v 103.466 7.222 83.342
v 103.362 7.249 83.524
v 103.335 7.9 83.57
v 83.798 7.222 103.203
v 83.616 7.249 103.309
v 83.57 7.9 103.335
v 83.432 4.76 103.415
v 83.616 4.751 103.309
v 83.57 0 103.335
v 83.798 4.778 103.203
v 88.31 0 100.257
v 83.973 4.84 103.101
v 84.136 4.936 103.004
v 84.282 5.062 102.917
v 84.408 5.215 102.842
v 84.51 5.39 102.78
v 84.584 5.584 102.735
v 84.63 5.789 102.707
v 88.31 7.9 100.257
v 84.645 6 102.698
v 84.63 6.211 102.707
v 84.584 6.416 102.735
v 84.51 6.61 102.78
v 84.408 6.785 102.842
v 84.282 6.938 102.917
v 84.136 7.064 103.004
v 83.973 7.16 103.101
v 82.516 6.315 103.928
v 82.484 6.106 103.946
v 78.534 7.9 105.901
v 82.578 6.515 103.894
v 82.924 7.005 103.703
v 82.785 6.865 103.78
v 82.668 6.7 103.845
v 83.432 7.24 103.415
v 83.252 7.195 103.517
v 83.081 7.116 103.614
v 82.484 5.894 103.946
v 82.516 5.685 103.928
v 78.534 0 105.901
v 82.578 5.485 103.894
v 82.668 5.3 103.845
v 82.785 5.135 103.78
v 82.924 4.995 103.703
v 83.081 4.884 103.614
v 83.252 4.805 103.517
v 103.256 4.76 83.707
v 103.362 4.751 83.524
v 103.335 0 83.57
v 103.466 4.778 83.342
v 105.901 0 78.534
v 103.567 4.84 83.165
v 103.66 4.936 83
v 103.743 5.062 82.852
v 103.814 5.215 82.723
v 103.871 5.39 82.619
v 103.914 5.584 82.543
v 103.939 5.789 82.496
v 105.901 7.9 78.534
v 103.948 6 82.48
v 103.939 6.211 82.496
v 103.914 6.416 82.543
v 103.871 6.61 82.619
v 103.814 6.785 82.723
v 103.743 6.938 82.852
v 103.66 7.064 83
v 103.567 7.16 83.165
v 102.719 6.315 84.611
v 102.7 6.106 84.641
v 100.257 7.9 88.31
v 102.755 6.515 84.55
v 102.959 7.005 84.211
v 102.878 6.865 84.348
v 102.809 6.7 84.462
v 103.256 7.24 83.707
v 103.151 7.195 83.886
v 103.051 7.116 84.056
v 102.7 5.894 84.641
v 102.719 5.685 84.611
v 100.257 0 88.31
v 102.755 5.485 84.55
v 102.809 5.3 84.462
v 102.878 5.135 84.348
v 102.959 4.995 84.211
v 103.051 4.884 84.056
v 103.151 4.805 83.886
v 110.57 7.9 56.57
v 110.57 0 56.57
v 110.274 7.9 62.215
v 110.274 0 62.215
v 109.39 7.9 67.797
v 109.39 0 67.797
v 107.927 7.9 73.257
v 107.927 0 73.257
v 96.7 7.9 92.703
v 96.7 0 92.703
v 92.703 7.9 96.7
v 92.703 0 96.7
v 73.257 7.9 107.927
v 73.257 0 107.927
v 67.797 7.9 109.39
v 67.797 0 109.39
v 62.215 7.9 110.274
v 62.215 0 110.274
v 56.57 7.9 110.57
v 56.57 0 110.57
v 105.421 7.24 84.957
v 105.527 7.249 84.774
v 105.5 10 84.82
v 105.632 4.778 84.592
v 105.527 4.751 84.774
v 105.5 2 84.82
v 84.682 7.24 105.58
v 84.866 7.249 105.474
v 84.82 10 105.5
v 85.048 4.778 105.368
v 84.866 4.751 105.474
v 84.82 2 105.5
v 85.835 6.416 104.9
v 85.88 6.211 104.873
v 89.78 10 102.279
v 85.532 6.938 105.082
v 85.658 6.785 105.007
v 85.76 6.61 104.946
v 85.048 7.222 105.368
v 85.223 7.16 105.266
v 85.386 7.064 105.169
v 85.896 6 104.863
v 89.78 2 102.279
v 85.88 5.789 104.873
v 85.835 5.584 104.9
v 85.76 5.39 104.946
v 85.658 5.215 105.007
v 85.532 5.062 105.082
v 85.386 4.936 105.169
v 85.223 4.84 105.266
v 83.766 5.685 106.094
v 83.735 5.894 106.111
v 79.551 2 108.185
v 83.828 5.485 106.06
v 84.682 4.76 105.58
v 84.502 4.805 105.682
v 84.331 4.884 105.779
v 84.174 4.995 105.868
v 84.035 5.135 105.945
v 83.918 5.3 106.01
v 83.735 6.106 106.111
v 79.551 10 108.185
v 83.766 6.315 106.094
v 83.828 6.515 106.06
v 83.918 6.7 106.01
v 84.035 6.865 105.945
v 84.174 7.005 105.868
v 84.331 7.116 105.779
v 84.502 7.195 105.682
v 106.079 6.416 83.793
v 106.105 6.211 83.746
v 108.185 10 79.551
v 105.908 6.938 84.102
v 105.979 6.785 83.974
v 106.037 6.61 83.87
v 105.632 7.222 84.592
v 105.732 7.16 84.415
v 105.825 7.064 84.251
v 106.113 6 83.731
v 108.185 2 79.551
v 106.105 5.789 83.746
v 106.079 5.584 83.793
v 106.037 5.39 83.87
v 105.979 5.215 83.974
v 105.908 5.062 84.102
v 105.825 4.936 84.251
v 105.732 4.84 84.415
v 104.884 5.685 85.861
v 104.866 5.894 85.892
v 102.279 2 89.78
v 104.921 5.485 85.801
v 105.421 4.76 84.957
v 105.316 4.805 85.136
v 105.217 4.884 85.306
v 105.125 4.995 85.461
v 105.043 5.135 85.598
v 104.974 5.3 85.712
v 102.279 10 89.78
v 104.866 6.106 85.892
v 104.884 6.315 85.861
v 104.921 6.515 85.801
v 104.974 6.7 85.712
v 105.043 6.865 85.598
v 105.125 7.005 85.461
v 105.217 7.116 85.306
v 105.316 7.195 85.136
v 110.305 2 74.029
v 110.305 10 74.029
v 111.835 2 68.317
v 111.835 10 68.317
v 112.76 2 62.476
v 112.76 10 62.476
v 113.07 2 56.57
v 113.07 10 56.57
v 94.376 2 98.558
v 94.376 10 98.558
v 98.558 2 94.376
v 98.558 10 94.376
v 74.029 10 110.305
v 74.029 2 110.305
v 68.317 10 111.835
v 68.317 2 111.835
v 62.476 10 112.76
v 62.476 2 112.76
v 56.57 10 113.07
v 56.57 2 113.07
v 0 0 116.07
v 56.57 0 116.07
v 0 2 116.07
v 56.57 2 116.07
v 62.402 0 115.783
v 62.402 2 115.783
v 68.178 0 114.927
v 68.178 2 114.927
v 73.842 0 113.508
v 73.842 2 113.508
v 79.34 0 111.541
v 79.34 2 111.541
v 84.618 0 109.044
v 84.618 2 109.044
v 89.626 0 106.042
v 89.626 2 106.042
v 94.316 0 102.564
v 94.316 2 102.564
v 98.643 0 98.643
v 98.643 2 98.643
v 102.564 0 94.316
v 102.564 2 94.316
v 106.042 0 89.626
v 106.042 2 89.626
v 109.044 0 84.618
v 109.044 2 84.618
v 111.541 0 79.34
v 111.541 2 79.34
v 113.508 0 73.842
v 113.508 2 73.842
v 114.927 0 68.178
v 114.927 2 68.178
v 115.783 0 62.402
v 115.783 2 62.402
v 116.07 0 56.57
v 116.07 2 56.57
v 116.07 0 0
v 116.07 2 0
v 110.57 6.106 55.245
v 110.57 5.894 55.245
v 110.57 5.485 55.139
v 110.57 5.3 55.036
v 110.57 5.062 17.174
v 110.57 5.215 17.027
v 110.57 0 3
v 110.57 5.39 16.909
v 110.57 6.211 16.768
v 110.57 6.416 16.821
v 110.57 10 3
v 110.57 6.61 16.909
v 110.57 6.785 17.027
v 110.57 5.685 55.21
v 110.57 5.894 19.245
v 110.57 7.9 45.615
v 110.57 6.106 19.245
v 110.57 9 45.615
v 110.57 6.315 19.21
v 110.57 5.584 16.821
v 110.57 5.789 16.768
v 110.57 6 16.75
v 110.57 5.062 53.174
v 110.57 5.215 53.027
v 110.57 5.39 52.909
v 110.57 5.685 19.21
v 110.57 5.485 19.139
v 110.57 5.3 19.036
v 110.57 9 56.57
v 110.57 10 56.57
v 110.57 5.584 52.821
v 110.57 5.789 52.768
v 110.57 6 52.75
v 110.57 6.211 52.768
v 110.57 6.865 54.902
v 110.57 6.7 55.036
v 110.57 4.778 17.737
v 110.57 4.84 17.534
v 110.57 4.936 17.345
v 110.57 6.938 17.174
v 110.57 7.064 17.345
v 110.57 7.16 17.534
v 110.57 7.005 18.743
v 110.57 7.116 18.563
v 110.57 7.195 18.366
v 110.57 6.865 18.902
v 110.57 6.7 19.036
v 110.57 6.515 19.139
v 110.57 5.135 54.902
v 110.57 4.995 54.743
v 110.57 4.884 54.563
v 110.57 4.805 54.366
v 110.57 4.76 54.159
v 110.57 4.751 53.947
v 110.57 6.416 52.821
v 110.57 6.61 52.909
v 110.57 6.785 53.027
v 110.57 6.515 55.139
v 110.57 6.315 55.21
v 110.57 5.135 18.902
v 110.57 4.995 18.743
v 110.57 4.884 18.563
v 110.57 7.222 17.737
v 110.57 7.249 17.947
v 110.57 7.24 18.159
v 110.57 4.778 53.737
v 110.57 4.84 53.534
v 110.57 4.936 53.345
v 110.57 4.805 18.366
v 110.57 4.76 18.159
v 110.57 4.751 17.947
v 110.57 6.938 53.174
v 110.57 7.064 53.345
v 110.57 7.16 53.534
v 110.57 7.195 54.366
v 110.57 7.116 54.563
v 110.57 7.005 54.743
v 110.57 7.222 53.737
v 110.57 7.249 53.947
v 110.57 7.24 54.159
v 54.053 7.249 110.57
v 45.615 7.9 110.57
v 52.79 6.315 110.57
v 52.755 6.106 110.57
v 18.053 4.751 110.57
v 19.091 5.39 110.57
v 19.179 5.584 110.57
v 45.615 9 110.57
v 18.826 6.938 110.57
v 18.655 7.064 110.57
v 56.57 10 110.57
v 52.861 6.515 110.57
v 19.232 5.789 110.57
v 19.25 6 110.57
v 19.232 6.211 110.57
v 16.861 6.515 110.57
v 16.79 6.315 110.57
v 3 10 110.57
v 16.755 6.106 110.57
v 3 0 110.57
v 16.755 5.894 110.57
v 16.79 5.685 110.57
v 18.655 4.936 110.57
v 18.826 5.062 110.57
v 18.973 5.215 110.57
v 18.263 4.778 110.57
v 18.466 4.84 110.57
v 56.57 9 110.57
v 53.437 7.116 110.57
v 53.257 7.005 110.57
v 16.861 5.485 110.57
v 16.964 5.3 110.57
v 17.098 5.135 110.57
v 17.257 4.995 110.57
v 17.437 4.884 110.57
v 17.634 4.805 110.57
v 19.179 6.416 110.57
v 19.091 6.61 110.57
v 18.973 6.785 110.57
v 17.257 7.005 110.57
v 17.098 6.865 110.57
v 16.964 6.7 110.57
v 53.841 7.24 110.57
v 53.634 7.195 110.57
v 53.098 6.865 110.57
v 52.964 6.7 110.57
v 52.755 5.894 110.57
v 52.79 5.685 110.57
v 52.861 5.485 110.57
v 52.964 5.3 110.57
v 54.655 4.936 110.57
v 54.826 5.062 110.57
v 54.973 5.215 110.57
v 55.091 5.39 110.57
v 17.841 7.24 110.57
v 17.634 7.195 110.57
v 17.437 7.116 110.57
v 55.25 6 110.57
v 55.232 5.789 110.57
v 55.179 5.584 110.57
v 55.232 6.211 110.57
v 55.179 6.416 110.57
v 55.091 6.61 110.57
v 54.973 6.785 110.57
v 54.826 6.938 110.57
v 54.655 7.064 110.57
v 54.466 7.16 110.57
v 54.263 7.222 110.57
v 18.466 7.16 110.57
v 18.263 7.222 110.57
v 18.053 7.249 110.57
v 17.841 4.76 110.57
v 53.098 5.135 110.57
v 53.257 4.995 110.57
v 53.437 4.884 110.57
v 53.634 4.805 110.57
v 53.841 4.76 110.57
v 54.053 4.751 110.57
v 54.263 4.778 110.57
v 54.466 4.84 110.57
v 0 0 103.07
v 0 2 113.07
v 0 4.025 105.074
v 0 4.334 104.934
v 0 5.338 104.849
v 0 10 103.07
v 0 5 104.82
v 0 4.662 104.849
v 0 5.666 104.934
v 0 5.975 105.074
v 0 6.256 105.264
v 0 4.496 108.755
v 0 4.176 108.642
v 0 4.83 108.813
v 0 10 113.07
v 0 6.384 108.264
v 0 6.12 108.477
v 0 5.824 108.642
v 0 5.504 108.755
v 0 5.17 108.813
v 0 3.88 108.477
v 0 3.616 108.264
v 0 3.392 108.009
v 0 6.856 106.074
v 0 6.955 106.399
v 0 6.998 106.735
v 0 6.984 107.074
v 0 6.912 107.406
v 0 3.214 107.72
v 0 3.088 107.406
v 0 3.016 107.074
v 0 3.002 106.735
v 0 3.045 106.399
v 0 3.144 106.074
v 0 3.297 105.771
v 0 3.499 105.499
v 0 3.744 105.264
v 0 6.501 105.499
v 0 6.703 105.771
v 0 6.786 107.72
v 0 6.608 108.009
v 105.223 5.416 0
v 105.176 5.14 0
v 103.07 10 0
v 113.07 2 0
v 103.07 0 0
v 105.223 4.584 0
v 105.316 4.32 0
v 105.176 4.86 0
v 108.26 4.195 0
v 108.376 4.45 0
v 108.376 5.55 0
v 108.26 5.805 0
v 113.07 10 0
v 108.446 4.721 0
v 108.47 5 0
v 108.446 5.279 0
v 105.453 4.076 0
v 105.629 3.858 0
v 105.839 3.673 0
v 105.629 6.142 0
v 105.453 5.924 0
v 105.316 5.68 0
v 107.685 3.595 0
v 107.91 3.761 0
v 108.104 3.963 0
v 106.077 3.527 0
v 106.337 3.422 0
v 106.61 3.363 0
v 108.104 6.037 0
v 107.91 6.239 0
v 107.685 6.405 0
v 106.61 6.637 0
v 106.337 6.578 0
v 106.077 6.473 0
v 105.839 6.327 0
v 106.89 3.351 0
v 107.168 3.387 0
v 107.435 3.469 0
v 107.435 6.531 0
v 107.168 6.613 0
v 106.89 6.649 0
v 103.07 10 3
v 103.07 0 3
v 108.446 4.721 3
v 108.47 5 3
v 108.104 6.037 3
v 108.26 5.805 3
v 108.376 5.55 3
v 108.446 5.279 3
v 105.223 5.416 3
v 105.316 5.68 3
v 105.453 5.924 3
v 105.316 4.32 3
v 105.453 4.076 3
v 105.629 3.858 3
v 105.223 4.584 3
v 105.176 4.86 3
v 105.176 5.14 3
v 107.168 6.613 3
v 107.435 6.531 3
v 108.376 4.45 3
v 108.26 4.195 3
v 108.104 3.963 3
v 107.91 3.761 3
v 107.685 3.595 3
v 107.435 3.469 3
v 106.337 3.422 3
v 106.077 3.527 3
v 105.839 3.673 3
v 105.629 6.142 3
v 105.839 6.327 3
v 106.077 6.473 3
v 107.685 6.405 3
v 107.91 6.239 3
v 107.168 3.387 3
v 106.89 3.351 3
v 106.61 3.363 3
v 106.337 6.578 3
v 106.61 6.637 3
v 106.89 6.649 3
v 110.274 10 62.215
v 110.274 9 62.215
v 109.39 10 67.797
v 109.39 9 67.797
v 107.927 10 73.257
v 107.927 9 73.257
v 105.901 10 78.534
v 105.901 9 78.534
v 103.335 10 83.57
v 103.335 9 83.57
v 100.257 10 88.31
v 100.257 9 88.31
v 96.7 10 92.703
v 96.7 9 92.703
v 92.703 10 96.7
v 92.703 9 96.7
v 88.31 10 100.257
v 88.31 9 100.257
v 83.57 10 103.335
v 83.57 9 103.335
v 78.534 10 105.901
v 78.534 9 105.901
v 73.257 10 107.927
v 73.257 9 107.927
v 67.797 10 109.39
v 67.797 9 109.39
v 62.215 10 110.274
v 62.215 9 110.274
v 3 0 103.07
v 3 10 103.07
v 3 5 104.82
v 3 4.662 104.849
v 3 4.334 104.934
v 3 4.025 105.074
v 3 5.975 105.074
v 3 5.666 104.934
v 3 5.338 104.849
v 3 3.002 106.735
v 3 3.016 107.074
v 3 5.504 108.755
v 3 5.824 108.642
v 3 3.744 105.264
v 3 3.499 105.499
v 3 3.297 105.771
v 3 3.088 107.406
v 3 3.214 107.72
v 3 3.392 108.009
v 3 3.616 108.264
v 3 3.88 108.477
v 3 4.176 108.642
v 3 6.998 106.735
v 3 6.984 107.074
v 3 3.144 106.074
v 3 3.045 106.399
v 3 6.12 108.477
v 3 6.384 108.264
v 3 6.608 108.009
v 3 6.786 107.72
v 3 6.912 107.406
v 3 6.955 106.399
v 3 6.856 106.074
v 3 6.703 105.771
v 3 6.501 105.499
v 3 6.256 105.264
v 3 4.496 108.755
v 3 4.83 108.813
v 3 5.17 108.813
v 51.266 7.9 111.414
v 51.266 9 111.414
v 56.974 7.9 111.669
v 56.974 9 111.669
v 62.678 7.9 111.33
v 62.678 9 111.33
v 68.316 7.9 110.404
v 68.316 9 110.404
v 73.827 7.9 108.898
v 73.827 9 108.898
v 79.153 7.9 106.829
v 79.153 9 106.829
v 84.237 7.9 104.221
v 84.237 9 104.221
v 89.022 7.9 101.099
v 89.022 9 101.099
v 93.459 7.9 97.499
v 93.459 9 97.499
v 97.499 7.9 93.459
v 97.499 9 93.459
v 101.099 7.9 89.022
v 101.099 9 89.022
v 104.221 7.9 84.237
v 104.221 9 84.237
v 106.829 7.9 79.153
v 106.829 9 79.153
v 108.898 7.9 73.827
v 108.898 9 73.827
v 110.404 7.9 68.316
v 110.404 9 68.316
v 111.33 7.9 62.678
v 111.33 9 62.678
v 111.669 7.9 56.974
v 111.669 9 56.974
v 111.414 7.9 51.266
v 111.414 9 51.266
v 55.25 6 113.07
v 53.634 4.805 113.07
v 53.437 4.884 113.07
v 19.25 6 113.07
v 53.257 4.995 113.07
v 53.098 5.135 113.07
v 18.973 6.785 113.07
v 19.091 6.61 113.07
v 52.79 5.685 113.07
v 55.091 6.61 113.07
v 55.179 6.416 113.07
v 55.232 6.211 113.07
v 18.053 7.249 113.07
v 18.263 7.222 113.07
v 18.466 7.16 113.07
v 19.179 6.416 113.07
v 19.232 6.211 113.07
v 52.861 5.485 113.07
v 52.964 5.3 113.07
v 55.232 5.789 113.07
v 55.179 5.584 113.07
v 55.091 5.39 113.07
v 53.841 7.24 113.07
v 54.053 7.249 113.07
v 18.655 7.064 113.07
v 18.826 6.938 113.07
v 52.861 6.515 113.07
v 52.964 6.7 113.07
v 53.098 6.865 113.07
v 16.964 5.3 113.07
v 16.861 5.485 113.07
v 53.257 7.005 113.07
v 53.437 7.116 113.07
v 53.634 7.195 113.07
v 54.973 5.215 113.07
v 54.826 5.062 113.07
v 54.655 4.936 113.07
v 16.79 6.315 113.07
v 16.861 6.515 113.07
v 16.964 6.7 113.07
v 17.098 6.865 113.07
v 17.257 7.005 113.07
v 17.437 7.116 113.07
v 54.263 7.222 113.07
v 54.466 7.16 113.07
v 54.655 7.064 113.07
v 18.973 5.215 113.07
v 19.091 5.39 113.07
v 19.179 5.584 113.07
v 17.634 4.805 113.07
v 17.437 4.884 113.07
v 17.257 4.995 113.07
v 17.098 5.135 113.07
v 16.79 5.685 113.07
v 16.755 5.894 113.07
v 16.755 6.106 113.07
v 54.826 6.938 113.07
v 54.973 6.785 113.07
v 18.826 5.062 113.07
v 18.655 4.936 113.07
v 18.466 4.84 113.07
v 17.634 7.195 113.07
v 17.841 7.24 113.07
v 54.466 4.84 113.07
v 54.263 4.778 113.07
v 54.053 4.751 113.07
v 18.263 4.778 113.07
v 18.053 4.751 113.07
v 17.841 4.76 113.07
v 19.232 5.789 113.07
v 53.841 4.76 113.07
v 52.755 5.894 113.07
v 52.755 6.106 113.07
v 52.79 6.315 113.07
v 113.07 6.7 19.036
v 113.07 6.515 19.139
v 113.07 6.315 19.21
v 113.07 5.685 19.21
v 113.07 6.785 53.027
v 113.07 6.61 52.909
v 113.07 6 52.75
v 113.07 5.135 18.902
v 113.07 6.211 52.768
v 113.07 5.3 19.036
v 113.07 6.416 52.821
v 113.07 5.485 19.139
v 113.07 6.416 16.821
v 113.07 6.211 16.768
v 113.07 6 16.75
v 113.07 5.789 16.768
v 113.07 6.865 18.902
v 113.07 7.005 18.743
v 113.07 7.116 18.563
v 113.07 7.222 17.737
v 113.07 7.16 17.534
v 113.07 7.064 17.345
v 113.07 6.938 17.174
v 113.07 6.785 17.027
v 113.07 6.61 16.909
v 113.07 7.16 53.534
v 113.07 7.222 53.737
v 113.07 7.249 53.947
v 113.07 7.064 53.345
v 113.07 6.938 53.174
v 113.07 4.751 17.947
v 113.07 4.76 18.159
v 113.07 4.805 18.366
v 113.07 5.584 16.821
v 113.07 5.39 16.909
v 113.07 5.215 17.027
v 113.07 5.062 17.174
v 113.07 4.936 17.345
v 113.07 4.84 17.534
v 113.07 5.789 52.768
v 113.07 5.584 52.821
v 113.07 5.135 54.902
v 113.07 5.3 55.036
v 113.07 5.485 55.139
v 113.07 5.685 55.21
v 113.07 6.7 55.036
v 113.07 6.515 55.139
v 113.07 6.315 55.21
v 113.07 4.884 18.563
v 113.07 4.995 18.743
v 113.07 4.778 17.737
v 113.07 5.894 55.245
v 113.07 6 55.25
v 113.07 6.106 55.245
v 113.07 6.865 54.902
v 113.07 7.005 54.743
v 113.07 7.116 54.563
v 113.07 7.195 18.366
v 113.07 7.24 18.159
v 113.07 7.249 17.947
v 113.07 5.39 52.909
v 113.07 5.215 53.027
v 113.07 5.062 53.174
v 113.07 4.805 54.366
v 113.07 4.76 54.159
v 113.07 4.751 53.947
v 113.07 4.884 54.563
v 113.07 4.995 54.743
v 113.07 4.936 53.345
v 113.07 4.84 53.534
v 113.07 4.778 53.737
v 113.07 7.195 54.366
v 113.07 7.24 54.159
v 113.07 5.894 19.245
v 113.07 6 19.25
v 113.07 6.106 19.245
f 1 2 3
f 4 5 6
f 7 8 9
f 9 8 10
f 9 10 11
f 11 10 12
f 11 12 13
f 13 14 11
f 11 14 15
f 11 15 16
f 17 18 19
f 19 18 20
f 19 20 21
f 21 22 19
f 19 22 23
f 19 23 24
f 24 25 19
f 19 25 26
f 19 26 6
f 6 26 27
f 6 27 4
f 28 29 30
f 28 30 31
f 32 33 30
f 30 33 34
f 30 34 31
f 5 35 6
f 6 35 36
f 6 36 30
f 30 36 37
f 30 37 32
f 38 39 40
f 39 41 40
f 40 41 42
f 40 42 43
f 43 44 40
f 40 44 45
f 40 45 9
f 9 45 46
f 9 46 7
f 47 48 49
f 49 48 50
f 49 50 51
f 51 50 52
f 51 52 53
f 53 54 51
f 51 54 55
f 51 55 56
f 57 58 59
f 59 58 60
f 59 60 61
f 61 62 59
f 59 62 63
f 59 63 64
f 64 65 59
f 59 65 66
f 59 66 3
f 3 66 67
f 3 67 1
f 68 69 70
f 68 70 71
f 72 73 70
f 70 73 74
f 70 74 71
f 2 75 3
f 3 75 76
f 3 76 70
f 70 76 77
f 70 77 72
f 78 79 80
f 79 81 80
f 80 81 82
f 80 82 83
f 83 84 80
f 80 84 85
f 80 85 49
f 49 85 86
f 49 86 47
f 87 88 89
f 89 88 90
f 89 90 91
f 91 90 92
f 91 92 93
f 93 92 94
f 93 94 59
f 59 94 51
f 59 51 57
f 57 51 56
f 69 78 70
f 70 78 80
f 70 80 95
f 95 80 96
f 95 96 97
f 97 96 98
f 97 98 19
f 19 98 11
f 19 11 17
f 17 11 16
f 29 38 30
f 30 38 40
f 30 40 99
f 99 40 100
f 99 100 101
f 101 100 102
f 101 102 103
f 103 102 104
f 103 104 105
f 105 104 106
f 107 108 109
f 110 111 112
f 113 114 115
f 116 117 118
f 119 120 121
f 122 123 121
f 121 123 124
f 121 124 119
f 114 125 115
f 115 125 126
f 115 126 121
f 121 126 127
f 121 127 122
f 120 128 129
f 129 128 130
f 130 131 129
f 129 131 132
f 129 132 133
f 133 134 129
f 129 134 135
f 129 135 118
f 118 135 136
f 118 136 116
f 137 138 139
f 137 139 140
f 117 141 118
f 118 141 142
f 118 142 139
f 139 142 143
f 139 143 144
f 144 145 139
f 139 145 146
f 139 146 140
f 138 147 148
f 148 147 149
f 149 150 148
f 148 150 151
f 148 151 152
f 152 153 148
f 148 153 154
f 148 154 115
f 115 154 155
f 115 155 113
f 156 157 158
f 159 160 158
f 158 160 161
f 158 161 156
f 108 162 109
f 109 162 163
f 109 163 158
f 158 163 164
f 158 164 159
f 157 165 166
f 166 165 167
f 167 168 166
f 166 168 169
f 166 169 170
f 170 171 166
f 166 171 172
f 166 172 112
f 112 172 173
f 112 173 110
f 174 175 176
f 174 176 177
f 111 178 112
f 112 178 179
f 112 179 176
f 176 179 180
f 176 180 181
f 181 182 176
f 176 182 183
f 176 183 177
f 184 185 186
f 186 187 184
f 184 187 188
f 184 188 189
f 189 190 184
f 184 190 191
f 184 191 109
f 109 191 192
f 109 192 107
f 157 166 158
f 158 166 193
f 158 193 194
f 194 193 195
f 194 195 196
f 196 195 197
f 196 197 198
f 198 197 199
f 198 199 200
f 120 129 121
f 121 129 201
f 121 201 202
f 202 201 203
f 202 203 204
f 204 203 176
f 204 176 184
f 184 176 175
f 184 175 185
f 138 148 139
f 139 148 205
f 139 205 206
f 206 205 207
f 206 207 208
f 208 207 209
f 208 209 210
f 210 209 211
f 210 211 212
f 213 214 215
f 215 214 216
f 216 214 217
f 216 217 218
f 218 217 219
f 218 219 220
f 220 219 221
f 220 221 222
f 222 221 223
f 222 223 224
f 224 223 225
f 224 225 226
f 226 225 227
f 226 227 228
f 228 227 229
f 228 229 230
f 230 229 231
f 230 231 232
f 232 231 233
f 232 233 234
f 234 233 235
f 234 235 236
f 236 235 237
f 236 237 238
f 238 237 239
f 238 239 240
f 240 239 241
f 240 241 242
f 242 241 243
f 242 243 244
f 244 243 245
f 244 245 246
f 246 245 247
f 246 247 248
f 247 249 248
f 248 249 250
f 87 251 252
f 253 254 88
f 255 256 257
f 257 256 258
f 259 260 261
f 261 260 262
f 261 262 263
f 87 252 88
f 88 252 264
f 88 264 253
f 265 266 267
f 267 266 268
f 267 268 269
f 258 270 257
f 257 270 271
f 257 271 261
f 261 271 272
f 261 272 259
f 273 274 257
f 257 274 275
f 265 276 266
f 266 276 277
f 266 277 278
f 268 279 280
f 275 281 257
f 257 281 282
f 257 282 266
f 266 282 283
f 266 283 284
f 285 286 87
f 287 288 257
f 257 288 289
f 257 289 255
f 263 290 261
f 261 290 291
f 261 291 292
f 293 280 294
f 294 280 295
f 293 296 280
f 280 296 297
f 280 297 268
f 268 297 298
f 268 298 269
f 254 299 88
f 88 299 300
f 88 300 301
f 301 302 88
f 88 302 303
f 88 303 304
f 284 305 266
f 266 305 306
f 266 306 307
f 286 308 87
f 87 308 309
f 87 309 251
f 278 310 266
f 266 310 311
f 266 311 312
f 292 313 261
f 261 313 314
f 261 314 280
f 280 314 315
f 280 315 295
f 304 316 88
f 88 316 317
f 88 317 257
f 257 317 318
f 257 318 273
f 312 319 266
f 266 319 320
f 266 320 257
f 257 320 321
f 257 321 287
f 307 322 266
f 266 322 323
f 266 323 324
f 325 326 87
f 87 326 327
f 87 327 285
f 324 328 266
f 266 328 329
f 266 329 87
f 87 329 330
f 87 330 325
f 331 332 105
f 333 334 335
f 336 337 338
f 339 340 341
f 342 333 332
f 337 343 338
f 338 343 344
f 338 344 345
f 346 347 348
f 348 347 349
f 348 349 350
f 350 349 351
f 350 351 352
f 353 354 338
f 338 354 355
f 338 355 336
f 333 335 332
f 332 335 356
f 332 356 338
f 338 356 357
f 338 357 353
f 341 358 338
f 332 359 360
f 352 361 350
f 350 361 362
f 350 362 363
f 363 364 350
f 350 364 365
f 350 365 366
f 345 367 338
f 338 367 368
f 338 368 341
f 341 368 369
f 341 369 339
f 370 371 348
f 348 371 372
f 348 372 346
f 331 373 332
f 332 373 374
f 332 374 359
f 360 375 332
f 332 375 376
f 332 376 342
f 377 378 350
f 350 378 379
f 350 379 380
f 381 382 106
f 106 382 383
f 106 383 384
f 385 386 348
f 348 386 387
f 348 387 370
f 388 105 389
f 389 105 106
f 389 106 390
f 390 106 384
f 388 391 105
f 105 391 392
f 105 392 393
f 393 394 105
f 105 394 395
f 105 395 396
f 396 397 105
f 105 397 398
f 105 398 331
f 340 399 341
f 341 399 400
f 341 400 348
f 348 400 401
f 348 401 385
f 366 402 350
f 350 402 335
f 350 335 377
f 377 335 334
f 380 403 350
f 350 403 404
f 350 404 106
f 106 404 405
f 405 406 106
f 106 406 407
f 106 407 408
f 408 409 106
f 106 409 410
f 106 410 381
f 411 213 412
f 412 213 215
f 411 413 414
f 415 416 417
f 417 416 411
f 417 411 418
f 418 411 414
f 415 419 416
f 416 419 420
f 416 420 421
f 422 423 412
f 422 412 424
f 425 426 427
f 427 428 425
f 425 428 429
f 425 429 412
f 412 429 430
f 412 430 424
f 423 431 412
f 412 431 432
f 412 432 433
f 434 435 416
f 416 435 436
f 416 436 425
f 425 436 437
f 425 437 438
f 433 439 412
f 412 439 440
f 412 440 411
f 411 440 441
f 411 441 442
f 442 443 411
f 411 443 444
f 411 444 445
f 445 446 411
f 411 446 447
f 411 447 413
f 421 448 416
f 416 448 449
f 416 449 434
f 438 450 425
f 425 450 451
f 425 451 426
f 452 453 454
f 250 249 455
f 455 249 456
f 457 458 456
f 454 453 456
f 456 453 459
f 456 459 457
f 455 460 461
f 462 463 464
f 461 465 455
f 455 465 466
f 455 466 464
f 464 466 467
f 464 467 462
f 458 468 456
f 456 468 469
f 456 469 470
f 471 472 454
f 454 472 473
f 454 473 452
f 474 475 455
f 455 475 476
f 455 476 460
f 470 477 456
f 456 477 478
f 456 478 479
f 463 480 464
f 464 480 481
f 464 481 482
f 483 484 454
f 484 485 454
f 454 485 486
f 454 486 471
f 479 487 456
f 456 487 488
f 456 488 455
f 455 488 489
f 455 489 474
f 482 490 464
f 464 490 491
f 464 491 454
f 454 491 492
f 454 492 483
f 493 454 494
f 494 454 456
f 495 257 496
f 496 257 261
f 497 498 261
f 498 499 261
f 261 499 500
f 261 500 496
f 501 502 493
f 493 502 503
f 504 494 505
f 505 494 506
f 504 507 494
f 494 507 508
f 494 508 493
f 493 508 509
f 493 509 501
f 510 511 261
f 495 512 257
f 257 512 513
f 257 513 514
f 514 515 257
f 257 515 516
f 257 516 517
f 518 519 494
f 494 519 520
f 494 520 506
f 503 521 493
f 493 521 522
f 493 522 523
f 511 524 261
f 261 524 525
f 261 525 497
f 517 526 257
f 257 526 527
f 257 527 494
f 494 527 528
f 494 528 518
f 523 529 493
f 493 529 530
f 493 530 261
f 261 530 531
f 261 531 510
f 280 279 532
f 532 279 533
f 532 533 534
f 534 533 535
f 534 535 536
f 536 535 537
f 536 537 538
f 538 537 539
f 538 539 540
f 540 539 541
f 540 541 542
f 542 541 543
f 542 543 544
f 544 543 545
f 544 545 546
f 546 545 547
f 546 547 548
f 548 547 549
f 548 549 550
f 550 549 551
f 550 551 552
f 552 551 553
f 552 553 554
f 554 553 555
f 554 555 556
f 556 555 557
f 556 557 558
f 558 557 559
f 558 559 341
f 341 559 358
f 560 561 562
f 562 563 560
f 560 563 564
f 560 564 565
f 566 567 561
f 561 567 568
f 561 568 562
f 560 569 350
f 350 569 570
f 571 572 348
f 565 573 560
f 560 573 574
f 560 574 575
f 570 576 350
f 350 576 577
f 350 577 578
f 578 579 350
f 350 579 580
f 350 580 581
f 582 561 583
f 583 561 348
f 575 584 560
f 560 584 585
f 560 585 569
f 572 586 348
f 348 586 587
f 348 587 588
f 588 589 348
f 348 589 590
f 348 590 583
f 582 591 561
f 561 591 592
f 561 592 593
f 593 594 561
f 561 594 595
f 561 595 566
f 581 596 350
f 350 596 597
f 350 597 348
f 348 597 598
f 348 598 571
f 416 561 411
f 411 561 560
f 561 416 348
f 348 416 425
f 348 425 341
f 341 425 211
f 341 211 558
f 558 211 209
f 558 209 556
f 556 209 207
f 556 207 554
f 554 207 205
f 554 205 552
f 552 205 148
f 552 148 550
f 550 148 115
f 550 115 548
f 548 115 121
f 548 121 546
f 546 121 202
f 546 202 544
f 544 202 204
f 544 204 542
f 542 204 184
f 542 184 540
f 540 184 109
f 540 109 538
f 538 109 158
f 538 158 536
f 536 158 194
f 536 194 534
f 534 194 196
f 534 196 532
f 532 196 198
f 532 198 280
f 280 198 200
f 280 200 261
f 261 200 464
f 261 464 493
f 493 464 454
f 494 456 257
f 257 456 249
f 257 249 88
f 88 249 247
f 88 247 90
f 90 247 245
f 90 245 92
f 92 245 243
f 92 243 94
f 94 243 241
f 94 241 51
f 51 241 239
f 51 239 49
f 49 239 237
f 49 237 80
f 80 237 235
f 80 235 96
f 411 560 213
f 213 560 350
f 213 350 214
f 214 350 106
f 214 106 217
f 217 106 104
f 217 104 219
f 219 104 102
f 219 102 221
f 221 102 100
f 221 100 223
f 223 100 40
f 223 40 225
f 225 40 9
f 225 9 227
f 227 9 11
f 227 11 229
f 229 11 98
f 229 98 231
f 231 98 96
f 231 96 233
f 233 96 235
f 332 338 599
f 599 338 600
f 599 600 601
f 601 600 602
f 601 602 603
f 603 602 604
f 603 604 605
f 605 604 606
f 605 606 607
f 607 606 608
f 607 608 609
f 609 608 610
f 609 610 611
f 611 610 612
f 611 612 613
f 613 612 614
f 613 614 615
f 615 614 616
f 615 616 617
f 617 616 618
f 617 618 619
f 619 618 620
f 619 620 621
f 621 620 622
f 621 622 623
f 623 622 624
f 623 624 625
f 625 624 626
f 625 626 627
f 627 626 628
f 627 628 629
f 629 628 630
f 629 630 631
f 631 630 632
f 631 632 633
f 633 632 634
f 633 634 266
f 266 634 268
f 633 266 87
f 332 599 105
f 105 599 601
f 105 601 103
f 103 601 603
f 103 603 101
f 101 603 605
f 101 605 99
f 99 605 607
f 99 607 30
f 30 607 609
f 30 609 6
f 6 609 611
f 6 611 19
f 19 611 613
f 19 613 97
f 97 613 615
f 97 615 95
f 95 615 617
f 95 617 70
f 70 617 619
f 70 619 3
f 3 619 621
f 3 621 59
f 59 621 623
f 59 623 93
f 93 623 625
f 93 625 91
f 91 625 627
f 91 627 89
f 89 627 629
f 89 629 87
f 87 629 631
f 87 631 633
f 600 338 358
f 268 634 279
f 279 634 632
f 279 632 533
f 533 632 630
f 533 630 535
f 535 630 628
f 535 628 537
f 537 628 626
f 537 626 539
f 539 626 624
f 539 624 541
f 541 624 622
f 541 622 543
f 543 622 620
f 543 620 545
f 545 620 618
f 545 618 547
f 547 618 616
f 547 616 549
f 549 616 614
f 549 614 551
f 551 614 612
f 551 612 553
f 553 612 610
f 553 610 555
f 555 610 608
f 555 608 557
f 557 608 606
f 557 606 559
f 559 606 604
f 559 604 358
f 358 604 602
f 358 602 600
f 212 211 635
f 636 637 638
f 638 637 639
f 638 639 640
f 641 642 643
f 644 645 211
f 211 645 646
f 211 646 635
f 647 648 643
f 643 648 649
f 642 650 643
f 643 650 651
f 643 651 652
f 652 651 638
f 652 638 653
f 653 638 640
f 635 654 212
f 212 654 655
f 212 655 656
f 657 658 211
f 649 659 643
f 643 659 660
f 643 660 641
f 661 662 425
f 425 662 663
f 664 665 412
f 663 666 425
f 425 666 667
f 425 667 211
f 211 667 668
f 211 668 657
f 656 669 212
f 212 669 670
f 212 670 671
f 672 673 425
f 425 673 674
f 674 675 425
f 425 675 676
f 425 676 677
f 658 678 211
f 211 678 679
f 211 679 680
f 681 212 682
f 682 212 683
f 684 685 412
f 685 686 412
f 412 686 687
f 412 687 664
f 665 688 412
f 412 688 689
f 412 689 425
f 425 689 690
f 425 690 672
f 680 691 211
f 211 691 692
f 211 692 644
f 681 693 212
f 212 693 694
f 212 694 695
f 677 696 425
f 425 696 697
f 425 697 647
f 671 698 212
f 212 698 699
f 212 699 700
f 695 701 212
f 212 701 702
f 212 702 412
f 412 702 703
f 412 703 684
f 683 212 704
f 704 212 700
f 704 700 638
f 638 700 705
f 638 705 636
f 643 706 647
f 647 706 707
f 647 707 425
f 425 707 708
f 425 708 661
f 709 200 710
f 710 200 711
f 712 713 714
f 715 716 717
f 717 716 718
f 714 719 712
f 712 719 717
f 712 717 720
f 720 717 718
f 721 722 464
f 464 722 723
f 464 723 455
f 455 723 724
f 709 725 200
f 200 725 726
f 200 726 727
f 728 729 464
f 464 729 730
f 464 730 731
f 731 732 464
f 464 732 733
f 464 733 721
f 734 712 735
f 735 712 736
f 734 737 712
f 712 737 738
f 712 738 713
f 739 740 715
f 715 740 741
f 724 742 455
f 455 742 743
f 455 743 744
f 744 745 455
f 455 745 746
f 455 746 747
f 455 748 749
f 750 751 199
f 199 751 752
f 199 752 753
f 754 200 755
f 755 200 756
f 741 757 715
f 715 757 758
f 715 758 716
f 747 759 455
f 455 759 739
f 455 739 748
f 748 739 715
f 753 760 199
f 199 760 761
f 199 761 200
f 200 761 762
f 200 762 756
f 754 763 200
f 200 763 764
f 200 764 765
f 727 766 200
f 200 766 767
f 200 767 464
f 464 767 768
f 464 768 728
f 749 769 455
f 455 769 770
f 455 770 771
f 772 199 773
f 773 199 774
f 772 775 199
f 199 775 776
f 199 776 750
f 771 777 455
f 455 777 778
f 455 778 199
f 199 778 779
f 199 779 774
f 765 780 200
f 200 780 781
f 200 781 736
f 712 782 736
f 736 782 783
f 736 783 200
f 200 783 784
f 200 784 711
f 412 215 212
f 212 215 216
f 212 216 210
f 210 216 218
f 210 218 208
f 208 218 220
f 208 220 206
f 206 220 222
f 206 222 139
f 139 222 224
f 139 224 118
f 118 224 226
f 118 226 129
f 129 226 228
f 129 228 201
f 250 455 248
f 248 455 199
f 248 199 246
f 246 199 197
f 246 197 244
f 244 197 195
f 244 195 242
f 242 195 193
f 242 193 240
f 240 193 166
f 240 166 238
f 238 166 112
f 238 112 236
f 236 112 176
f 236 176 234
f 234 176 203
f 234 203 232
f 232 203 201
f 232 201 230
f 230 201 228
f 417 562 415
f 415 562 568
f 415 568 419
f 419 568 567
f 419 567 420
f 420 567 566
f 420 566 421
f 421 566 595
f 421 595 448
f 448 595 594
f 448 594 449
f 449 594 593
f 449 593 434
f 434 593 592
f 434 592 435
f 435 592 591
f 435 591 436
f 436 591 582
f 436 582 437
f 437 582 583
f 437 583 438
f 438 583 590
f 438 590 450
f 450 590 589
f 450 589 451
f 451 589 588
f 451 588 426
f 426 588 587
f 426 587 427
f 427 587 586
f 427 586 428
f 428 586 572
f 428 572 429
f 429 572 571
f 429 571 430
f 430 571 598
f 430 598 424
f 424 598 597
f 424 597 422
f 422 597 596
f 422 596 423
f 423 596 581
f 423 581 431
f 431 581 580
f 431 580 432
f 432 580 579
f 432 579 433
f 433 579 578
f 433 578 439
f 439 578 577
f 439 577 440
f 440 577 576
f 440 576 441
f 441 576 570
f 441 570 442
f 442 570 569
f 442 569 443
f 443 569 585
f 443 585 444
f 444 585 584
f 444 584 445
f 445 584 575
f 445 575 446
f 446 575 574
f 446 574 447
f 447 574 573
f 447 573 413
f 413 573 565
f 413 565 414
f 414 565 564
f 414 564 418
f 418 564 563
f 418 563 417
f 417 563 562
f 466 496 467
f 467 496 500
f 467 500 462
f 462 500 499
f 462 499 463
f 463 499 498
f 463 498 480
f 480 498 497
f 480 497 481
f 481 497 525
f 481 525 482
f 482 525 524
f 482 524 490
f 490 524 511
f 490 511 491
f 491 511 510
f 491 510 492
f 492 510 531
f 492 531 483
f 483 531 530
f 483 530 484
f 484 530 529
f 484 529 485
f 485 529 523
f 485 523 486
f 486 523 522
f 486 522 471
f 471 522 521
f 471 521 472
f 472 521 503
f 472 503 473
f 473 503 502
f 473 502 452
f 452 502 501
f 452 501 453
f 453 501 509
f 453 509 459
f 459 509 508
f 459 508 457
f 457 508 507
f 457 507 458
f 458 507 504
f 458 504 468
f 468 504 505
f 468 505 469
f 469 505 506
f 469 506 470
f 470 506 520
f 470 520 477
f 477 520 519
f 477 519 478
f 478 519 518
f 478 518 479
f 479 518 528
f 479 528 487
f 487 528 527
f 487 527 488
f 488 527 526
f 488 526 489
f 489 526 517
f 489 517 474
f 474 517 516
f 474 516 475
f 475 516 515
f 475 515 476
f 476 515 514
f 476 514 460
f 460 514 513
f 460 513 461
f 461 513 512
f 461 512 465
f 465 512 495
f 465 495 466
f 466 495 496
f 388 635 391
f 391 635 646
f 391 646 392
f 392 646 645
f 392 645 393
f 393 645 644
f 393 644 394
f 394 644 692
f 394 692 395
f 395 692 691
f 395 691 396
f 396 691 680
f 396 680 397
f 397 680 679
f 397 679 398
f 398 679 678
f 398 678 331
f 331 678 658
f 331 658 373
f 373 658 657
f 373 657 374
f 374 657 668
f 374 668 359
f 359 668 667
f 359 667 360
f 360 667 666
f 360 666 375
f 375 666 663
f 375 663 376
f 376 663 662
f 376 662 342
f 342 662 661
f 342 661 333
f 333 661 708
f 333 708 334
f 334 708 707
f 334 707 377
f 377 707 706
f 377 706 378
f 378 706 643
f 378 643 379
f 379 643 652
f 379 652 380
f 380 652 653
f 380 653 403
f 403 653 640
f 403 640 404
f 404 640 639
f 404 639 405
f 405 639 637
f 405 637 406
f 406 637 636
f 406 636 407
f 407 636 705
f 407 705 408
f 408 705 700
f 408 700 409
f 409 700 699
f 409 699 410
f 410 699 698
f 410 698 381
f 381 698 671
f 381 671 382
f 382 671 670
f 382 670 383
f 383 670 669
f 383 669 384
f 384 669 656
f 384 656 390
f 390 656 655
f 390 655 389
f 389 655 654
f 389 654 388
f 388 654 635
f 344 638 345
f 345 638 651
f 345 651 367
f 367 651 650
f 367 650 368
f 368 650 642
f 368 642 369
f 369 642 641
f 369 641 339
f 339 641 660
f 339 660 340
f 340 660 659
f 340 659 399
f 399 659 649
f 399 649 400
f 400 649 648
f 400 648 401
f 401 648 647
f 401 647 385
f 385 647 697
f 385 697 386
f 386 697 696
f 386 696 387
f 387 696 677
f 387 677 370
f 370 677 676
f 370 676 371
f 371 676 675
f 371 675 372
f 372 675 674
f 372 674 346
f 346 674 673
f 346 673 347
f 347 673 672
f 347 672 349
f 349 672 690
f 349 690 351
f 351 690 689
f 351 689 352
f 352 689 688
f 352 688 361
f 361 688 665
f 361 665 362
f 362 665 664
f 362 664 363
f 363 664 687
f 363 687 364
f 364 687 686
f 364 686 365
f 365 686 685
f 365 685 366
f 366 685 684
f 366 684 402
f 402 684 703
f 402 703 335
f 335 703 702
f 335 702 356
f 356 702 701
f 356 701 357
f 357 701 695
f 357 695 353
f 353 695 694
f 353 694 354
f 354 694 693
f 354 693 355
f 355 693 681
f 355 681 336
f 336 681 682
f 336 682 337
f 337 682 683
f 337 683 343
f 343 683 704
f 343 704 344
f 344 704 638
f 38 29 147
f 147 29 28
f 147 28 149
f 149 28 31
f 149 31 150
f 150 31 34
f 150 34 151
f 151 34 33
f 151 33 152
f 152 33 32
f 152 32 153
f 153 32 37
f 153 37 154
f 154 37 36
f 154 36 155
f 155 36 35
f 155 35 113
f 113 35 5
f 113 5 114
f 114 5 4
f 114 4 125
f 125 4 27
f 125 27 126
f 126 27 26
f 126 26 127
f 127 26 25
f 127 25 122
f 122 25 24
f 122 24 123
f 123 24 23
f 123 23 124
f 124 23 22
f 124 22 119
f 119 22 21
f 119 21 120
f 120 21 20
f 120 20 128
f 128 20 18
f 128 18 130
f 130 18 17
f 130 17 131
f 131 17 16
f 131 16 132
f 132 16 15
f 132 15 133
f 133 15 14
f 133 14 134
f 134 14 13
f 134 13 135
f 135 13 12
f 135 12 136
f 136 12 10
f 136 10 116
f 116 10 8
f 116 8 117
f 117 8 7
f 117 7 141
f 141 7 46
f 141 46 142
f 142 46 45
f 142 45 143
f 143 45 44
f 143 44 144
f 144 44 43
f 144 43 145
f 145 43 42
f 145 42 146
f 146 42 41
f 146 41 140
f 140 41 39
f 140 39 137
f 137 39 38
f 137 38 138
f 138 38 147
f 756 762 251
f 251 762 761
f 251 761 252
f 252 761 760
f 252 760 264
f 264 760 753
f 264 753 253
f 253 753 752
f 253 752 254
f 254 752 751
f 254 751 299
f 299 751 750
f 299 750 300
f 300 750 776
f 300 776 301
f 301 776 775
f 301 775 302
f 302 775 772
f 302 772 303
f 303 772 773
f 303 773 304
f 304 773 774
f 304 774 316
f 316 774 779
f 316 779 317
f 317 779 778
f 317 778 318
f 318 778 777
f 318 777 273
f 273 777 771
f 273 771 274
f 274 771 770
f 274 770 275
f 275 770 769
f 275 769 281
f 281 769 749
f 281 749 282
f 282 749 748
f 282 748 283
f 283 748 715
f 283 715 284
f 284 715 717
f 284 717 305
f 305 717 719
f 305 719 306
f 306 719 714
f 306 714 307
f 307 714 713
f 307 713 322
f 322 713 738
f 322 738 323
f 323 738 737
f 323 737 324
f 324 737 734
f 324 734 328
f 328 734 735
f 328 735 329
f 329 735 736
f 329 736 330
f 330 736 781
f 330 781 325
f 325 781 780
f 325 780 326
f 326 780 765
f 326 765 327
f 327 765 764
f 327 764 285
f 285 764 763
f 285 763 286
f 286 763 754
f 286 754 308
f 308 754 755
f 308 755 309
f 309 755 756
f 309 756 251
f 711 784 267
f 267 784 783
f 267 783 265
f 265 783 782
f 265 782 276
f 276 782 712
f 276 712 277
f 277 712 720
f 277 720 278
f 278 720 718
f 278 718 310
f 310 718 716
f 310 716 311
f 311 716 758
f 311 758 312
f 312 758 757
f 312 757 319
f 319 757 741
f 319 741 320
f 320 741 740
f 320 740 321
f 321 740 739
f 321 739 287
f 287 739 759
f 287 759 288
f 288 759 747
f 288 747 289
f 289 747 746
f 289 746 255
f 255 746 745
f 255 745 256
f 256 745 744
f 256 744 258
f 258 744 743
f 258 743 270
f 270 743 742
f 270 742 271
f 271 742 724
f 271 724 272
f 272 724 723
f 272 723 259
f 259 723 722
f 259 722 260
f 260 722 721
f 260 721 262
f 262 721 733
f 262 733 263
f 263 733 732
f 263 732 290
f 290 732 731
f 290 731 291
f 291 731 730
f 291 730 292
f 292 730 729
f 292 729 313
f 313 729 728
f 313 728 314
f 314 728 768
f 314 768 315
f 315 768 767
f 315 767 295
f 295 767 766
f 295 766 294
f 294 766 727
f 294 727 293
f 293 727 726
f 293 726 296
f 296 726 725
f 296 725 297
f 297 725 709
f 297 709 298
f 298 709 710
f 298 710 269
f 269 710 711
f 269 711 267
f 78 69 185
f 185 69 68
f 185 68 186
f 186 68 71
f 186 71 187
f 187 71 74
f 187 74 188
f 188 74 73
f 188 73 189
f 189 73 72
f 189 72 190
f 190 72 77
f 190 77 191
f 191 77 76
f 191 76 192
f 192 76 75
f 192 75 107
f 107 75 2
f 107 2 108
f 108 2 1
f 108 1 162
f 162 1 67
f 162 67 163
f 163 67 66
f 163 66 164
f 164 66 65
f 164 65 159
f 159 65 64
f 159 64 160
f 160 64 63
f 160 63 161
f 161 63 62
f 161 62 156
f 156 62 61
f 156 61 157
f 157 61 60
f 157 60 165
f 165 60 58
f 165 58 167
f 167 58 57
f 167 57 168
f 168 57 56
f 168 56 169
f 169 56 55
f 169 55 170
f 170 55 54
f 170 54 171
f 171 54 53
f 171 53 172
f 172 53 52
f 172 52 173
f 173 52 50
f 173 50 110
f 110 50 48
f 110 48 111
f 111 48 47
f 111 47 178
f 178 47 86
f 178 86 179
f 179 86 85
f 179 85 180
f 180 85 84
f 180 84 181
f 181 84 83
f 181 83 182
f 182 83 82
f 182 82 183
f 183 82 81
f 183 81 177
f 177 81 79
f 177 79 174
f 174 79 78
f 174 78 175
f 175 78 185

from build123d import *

# Parameters (mm, degrees)
BOSS_EXTRUDE1_DEPTH = 10
CUT_EXTRUDE1_START  = -1
SKETCH2_R           = 55.1
CUT_EXTRUDE1_DEPTH  = 1.1
CUT_EXTRUDE2_DEPTH  = 8
SKETCH4_R           = 2
CUT_EXTRUDE3_DEPTH  = 4
SKETCH5_R           = 1.65
CUT_EXTRUDE4_DEPTH  = 4
SKETCH7_R           = 1.25
CUT_EXTRUDE5_DEPTH  = 114.07
SKETCH9_R           = 1.25
CUT_EXTRUDE6_DEPTH  = 134.776057092


with BuildPart() as part:
    # Sketch1 → Boss-Extrude1 (new body)
    with BuildSketch(Plane(origin=(0, 0, 0), x_dir=(1, 0, 0), z_dir=(0, 1, 0))):
        with BuildLine():
            Line((0, -116.07), (56.57, -116.07))
            ThreePointArc((56.57, -116.07), (98.642853481, -98.642853481), (116.07, -56.57))
            Line((116.07, -56.57), (116.07, 0))
            Line((116.07, 0), (103.07, 0))
            Line((103.07, 0), (103.07, -3))
            Line((103.07, -3), (110.57, -3))
            Line((110.57, -3), (110.57, -56.57))
            ThreePointArc((110.57, -56.57), (94.753766184, -94.753766184), (56.57, -110.57))
            Line((56.57, -110.57), (3, -110.57))
            Line((3, -110.57), (3, -103.07))
            Line((3, -103.07), (0, -103.07))
            Line((0, -103.07), (0, -116.07))
        make_face()
    extrude(amount=BOSS_EXTRUDE1_DEPTH)

    # Sketch2 → Cut-Extrude1 (cut)
    with BuildSketch(Plane(origin=(0, 10, 0), x_dir=(1, 0, 0), z_dir=(0, 1, 0)).offset(CUT_EXTRUDE1_START)):
        with Locations((56.57, -56.57)):
            Circle(SKETCH2_R)
    extrude(amount=-CUT_EXTRUDE1_DEPTH, mode=Mode.SUBTRACT)

    # Sketch3 → Cut-Extrude2 (cut)
    with BuildSketch(Plane(origin=(0, 10, 0), x_dir=(1, 0, 0), z_dir=(0, 1, 0))):
        with BuildLine():
            Line((113.07, -56.57), (113.07, 0))
            Line((113.07, 0), (116.07, 0))
            Line((116.07, 0), (116.07, -56.57))
            ThreePointArc((116.07, -56.57), (98.642853481, -98.642853481), (56.57, -116.07))
            Line((56.57, -116.07), (0, -116.07))
            Line((0, -116.07), (0, -113.07))
            Line((0, -113.07), (56.57, -113.07))
            ThreePointArc((56.57, -113.07), (96.521533137, -96.521533137), (113.07, -56.57))
        make_face()
    extrude(amount=-CUT_EXTRUDE2_DEPTH, mode=Mode.SUBTRACT)

    # Sketch4 → Cut-Extrude3 (cut, through all)
    with BuildSketch(Plane(origin=(3, 0, 0), x_dir=(0, 0, -1), z_dir=(1, 0, 0))):
        with Locations((-106.82, 5)):
            Circle(SKETCH4_R)
    extrude(amount=-CUT_EXTRUDE3_DEPTH, mode=Mode.SUBTRACT)

    # Sketch5 → Cut-Extrude4 (cut, through all)
    with BuildSketch(Plane.XY.offset(3)):
        with Locations((106.82, 5)):
            Circle(SKETCH5_R)
    extrude(amount=-CUT_EXTRUDE4_DEPTH, mode=Mode.SUBTRACT)

    # Sketch7 → Cut-Extrude5 (cut, through all)
    with BuildSketch(Plane.XY.offset(113.07)):
        with Locations((18, 6)):
            Circle(SKETCH7_R)
        with Locations((54, 6)):
            Circle(SKETCH7_R)
    cut_extrude5 = extrude(amount=-CUT_EXTRUDE5_DEPTH, mode=Mode.SUBTRACT)

    # Sketch9 → Cut-Extrude6 (cut, through all)
    with BuildSketch(Plane(origin=(66.888028546, 0, 115.85346386), x_dir=(-0.866025404, 0, 0.5), z_dir=(-0.5, 0, -0.866025404))):
        with Locations((-20.706057092, 6)):
            Circle(SKETCH9_R)
    cut_extrude6 = extrude(amount=CUT_EXTRUDE6_DEPTH, mode=Mode.SUBTRACT)

    # Mirror1: Cut-Extrude5, Cut-Extrude6 across plane
    add(cut_extrude5.mirror(Plane(origin=(0, 0, 0), x_dir=(0.707106781, 0, 0.707106781), z_dir=(-0.707106781, 0, 0.707106781))), mode=Mode.SUBTRACT)
    add(cut_extrude6.mirror(Plane(origin=(0, 0, 0), x_dir=(0.707106781, 0, 0.707106781), z_dir=(-0.707106781, 0, 0.707106781))), mode=Mode.SUBTRACT)


solid = part.part
